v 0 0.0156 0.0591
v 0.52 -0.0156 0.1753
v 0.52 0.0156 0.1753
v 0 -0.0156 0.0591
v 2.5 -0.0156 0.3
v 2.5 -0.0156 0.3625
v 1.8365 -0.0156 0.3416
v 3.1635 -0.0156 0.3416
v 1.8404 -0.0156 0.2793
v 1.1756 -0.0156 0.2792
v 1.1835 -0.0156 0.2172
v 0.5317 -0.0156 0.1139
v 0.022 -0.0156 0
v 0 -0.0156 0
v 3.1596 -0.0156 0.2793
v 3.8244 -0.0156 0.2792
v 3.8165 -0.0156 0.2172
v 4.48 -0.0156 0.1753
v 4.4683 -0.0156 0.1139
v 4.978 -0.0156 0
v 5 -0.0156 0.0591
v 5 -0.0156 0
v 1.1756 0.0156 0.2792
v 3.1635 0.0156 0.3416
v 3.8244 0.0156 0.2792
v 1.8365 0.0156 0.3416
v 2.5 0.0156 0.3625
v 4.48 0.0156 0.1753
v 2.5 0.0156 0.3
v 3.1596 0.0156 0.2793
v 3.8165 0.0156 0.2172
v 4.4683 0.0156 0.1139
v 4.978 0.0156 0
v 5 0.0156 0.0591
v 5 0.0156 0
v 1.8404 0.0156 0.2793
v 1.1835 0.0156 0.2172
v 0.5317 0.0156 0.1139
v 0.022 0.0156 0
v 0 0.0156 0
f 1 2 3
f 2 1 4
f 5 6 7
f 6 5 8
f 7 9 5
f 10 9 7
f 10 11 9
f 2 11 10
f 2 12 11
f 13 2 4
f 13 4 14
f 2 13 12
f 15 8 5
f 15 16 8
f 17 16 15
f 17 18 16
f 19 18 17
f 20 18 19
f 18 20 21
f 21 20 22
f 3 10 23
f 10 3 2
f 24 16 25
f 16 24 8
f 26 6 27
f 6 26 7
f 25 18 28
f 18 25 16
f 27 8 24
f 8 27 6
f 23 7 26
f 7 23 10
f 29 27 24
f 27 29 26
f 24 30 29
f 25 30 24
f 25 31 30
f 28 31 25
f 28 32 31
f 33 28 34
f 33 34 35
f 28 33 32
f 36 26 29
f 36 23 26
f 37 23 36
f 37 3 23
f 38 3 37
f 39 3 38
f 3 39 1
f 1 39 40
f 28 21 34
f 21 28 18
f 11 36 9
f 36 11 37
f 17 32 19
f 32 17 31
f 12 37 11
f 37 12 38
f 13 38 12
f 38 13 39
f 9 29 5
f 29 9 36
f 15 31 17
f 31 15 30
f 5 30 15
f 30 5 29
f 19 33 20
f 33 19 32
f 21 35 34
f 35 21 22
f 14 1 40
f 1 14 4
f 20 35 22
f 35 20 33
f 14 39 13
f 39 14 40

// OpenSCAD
module rib(
      chord=5,
      camber=6,
      height=1/16,
      thickness=1/32) {
    camber = camber * chord / 100;
    radius = chord * chord / (8 * camber) + camber / 2;

    rotate([90,0,0])
      translate([chord/2,-radius + camber + height,-thickness/2])
        intersection() {
          difference() {
            cylinder(r=radius,h=thickness, $fn=100);
            translate([0,0,-0.5])
                cylinder(r=radius-height, h=1, $fn=100);
          }
          translate([-chord/2,radius-camber-height,0])
            cube([chord, 1, 1]);
        }
}

rib();
